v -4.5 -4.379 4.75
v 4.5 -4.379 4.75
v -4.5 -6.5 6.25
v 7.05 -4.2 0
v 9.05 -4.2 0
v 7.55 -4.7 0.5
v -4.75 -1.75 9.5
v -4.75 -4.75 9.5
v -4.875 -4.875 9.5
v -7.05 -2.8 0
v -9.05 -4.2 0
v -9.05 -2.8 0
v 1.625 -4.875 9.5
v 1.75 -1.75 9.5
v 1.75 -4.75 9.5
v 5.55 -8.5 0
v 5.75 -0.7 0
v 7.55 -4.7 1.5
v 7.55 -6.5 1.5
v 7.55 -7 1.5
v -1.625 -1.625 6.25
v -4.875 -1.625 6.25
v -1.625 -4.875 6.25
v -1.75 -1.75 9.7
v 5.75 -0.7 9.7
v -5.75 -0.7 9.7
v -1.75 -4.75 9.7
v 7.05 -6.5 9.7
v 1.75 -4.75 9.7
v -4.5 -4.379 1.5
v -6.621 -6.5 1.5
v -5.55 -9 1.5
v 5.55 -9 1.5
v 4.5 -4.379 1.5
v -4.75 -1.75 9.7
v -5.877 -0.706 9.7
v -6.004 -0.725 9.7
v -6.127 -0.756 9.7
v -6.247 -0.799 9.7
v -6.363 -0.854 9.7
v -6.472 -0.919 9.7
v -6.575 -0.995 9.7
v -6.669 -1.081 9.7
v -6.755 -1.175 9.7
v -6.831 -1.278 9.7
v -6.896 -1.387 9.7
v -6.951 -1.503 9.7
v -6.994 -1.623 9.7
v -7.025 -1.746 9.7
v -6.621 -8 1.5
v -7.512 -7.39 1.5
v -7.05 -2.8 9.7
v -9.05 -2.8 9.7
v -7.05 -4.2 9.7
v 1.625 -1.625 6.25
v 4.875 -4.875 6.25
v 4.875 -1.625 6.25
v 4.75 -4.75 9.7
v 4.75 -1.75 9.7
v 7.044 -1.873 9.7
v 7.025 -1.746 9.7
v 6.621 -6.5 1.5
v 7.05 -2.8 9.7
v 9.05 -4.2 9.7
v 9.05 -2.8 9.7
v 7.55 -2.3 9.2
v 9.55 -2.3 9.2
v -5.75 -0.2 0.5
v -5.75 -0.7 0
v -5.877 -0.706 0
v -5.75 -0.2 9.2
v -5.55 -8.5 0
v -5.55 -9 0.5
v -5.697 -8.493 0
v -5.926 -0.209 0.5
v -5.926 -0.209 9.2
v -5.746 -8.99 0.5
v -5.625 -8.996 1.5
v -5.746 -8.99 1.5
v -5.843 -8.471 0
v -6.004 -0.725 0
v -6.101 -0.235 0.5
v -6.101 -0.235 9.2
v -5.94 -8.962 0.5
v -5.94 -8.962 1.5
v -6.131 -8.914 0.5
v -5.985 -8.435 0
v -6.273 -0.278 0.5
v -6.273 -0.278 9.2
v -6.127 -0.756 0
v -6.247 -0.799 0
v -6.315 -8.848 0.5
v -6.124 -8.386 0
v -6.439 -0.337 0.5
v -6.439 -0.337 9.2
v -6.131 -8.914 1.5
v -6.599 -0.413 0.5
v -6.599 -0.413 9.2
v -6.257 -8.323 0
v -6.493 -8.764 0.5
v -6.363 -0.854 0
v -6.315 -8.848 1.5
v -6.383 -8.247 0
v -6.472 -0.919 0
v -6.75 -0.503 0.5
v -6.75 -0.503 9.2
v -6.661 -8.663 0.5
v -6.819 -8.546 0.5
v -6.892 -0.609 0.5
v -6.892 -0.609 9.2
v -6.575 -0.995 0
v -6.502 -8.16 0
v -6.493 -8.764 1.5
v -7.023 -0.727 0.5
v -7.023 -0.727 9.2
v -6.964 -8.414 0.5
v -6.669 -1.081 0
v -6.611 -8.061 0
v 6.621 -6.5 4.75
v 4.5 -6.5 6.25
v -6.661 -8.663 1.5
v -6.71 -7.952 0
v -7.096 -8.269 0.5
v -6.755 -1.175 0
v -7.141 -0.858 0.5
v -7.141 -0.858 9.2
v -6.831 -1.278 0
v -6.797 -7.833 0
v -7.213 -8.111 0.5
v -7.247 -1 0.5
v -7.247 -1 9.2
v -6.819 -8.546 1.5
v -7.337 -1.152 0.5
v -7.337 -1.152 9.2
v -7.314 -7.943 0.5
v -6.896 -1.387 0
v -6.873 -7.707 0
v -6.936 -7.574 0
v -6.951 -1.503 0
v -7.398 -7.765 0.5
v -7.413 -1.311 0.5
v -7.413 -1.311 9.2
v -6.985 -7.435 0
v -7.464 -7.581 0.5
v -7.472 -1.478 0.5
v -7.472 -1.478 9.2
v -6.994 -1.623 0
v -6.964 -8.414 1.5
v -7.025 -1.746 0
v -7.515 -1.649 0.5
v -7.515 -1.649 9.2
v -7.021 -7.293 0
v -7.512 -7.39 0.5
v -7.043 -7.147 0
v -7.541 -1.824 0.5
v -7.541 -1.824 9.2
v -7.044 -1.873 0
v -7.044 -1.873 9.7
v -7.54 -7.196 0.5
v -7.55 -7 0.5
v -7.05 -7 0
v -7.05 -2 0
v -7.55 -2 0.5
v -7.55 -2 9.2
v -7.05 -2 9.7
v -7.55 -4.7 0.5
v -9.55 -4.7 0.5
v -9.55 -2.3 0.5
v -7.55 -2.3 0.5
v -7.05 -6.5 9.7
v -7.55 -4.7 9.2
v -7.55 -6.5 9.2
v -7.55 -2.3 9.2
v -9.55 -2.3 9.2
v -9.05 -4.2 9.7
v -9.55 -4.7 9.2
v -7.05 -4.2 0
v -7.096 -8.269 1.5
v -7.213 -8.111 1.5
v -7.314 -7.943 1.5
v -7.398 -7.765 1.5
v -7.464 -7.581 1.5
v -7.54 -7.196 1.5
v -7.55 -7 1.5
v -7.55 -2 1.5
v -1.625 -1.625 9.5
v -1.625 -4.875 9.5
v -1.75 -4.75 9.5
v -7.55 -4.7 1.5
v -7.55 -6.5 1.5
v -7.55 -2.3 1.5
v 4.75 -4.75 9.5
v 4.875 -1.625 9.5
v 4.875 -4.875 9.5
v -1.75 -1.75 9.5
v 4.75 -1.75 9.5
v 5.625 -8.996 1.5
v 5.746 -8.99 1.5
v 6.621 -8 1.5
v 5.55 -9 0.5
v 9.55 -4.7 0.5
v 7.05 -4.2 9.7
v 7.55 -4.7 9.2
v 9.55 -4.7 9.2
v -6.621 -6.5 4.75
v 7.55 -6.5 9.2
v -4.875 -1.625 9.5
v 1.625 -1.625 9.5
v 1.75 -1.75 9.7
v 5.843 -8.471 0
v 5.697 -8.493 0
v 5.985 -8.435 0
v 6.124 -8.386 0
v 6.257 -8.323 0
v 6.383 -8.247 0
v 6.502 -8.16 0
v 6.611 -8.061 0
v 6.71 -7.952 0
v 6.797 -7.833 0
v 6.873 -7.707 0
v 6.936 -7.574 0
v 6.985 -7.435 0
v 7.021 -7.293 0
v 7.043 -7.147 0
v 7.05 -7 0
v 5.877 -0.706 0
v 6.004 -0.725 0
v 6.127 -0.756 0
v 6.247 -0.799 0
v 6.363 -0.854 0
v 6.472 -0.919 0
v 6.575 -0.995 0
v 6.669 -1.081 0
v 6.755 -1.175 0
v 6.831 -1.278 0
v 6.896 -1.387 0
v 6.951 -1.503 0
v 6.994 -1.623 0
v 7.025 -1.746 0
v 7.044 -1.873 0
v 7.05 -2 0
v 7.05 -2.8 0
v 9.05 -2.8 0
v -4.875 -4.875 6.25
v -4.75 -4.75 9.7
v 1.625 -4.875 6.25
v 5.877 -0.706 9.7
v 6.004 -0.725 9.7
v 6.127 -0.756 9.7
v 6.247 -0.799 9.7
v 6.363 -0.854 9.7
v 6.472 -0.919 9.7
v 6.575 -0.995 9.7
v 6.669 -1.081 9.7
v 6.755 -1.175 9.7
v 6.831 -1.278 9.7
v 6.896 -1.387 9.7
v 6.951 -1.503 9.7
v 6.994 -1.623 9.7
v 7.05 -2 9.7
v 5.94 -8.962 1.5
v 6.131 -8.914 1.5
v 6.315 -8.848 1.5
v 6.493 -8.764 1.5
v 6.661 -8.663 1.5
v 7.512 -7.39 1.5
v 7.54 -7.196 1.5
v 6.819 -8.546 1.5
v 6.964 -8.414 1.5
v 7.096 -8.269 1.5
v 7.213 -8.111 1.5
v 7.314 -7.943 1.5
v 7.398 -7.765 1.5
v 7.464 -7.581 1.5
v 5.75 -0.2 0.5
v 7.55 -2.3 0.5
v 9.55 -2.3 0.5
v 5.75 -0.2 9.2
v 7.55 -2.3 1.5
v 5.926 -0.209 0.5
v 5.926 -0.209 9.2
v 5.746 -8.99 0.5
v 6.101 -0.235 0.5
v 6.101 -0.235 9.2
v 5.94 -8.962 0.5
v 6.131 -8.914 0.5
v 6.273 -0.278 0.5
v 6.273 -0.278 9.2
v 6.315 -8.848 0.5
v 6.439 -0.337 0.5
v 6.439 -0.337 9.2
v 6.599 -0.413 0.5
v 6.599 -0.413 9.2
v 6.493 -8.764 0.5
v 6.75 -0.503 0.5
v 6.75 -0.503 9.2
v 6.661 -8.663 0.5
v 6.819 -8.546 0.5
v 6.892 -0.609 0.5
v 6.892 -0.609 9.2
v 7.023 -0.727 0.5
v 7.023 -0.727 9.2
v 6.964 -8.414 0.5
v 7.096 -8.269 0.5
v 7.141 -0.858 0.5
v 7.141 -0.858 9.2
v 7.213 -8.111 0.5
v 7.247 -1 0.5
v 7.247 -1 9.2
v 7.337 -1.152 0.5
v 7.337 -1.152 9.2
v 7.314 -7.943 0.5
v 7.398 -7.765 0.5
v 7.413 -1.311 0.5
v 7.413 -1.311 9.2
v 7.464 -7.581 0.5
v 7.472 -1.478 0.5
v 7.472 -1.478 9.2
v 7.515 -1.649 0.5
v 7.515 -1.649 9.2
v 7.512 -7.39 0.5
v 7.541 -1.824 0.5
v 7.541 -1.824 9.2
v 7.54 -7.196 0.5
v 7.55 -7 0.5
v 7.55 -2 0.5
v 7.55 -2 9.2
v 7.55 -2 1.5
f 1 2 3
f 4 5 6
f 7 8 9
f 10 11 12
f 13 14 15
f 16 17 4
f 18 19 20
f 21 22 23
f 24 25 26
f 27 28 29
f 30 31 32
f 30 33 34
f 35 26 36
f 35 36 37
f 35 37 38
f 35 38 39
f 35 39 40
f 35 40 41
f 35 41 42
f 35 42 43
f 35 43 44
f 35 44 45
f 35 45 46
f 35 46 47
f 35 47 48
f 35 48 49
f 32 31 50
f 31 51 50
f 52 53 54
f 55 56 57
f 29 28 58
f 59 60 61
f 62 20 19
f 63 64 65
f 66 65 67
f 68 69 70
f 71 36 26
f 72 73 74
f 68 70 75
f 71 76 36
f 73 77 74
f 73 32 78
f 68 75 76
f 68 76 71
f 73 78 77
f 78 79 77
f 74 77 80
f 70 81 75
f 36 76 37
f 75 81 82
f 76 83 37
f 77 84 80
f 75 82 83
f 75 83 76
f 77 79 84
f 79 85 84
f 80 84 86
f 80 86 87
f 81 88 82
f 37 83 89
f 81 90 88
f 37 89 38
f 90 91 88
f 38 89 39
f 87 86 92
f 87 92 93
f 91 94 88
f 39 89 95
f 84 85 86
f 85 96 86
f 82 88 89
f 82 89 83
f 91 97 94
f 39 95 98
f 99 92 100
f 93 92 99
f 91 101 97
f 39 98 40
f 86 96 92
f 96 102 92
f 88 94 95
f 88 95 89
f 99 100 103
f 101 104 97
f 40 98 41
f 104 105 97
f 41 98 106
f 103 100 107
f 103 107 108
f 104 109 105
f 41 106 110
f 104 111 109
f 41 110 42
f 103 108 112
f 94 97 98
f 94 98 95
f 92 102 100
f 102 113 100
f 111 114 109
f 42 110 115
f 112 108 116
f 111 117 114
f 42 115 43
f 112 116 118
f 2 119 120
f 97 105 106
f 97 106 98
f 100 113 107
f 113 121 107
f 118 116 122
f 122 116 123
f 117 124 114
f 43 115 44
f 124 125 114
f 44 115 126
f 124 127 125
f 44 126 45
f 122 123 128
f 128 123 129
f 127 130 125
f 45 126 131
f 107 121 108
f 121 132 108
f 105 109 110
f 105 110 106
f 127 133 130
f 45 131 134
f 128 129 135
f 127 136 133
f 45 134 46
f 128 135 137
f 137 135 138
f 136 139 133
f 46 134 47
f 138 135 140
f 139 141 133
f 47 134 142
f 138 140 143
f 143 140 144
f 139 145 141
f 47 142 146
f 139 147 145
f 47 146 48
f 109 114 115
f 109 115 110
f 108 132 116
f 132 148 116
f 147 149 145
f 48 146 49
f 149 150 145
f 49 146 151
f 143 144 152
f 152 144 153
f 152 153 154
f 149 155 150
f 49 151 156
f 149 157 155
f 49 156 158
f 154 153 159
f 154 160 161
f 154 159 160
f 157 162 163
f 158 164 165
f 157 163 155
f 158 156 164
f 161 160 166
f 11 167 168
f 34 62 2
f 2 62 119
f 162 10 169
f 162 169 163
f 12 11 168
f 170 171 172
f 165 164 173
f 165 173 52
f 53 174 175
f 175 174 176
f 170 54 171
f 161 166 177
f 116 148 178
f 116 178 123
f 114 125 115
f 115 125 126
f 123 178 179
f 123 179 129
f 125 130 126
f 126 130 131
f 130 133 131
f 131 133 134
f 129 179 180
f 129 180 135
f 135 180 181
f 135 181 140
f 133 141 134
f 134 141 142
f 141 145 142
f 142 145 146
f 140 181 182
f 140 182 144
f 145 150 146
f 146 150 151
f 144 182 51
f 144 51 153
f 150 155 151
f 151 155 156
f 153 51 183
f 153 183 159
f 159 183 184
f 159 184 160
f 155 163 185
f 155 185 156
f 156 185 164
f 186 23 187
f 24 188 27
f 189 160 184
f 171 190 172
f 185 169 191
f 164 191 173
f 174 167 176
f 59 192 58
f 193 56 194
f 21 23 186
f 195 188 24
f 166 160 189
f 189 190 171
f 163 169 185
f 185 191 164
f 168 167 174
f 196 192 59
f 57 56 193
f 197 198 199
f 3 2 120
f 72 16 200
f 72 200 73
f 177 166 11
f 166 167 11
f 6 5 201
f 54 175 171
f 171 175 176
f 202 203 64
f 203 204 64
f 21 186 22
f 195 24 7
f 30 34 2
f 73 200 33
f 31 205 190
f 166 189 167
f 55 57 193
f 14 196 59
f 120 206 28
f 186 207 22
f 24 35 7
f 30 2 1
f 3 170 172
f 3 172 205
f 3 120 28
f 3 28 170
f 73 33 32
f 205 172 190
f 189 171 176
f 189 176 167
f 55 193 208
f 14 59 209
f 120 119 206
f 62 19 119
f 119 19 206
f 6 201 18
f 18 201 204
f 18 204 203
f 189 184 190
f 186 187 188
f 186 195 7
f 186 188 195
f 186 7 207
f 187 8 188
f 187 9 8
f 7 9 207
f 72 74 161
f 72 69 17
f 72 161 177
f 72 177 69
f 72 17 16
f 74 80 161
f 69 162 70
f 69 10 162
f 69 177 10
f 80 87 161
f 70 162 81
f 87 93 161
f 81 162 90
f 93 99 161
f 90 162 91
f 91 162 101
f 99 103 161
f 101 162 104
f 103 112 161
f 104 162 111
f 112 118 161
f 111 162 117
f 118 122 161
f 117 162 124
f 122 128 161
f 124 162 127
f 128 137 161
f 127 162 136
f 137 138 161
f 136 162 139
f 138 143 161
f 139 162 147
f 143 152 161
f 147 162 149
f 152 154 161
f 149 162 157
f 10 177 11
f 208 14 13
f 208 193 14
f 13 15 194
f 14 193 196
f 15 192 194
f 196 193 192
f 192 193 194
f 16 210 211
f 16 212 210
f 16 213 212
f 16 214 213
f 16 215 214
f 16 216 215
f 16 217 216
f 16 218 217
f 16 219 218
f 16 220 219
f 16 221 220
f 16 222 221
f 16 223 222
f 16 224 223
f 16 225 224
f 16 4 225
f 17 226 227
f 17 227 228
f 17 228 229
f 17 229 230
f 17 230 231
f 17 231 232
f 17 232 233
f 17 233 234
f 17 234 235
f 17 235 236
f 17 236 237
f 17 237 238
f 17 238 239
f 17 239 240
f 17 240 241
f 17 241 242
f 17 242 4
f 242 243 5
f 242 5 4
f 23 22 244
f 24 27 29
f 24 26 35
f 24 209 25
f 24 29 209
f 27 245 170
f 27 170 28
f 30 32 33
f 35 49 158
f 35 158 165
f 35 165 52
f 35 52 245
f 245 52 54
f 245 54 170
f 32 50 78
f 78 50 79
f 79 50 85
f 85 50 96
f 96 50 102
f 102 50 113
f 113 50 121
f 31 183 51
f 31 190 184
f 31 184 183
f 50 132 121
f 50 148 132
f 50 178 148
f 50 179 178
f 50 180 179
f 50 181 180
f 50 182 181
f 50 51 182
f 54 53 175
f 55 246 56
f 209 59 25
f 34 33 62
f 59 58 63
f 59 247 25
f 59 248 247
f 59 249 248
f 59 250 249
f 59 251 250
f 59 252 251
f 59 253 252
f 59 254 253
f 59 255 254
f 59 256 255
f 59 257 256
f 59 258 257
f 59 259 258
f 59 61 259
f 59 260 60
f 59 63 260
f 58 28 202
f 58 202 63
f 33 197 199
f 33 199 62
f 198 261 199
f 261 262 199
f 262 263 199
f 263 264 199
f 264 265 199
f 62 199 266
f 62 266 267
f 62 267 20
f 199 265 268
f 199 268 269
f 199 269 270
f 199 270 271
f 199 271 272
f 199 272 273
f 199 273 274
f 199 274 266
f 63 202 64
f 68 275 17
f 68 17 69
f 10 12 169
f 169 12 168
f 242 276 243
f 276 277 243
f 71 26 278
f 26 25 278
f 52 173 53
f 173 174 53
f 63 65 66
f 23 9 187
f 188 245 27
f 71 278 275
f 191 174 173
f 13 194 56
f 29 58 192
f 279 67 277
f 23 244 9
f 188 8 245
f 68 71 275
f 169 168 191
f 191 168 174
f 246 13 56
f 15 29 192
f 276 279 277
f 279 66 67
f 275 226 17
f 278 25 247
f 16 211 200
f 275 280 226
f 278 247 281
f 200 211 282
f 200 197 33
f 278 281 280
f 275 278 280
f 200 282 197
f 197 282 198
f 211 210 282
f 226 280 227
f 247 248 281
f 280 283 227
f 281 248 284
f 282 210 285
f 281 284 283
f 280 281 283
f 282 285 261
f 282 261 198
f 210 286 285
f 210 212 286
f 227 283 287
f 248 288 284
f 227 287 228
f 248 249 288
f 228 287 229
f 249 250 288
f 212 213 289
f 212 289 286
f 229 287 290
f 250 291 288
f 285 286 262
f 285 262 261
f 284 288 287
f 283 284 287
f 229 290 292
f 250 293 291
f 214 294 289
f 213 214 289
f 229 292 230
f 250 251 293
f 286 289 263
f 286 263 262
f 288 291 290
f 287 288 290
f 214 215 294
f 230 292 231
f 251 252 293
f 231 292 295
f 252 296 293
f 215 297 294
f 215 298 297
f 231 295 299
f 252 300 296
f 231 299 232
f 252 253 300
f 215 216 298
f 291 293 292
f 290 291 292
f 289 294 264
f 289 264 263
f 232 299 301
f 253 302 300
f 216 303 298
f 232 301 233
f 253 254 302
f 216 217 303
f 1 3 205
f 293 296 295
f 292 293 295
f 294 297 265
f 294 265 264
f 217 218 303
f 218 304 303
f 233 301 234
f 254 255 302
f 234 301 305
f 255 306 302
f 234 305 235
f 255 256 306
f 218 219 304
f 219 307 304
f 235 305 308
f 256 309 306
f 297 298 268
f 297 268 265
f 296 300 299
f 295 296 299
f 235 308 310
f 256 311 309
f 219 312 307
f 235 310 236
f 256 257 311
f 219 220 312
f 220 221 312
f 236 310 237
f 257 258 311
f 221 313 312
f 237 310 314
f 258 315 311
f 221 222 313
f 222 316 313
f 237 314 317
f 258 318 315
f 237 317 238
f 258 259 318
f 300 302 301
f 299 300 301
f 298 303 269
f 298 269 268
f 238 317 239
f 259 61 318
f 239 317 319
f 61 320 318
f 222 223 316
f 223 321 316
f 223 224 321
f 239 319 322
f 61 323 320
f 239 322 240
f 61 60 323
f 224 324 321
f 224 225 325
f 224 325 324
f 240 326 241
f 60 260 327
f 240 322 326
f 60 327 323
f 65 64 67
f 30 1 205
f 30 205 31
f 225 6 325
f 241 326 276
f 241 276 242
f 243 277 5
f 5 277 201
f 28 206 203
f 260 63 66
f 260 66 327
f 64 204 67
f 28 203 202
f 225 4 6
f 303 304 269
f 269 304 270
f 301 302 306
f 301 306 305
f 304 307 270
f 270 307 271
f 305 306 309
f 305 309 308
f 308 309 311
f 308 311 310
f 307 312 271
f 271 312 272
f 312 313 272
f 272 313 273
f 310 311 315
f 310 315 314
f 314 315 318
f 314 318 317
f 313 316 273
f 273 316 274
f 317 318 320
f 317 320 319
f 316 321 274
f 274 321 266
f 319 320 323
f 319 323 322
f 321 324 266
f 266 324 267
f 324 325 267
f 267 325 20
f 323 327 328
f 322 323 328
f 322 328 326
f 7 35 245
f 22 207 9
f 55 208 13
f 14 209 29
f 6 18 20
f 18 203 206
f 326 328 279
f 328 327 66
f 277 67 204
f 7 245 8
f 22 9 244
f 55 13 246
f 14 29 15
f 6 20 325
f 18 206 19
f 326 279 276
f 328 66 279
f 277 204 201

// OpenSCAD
// file: ../../lib/utils.scad
include <../variables.scad>

use <./Round-Anything/polyround.scad>


module mirrorCopy(v, mirrorOffset=0) {
  children();

  translate([v[0]*mirrorOffset, v[1]*mirrorOffset, v[2]*mirrorOffset])
  mirror(v)
  translate([-v[0]*mirrorOffset, -v[1]*mirrorOffset, -v[2]*mirrorOffset])
  children();
}

module mirrorRotate(r) {
  children();

  rotate(r)
  children();
}


module draft(vertical, offs) {
  hull() {
    translate([0, 0, vertical])linear_extrude(0.01)children();
    linear_extrude(0.01)offset(offs)children();
  }
}

module roundedCube(dimen, radii, center=false) {
  translate(center ? [-dimen.x/2, -dimen.y/2, -dimen.z/2] : [0, 0, 0])
  linear_extrude(dimen.z)
  polygon(polyRound([
    [0, 0, is_num(radii) ? radii : radii[0]],
    [dimen.x, 0, is_num(radii) ? radii : radii[1]],
    [dimen.x, dimen.y, is_num(radii) ? radii : radii[2]],
    [0, dimen.y, is_num(radii) ? radii : radii[3]],
  ], fn=$pfn));
}

module HeatsetInsertHole(bottom=false) {
  translate([0, 0, bottom ? 0 : -m3_insert_hole_depth]) {
    rotate_extrude()
    polygon([
      [0, 0],
      [0, m3_insert_hole_depth],
      [m3_insert_hole_diameter/2, m3_insert_hole_depth],
      [m3_insert_hole_diameter/2, m3_insert_cavity_depth+(m3_insert_cavity_diameter-m3_insert_hole_diameter)/2],
      [m3_insert_cavity_diameter/2, m3_insert_cavity_depth],
      [m3_insert_cavity_diameter/2, 0],
    ]);
  }
}

function roundedRectangle(width, height, radius) =
  polyRound([
    [width/2, height/2, radius],
    [-width/2, height/2, radius],
    [-width/2, -height/2, radius],
    [width/2, -height/2, radius],
  ], fn=$pfn);


module ChamferPyramid(l)       polyhedron(
  //        P0        P1        P2         P3       P4
  points= [[l,l,0], [l,-l,0], [-l,-l,0], [-l,l,0], [0,0,l]],
  faces=  [[0,1,4], [1,2,4],  [2,3,4],    [3,0,4], [1,0,3],  [2,1,3] ]
 );

/**
 * Produces a rail with a smaller plate to attach to, and a bigger base that
 * holds it in the opposite rail. The rail is centered on one of the long edges
 * of the plate that can be built upon, ranging wide in both x directions and
 * short into the positive y direction.
 */
module MountRail(clearance=MountRail_clearance) {
  translate([0, 0, -MountRail_total_height ])
  rotate([90, 0, 180])
  mirrorCopy([1, 0, 0])
  difference() {
    linear_extrude(MountRail_width,convexity=2)
    polygon([
      [0, 0],
      [MountRail_base_width/2-clearance, 0],
      [MountRail_base_width/2-clearance, MountRail_base_height-clearance],
      [MountRail_plate_width/2-clearance, MountRail_base_height+MountRail_chamfer_height-clearance],
      [MountRail_plate_width/2-clearance, MountRail_total_height],
      [0, MountRail_base_height+MountRail_chamfer_height+MountRail_plate_distance]
    ]);

    translate([MountRail_base_width/2, 0, MountRail_width/2])
    rotate([0, -90, 0])
    cylinder(d=m3_screw_diameter_loose, h=MountRail_pin_length);
  }
}

module ScrewHole(
  depth, // total depth, including head
  diameter,
  head_depth=0,
  head_diameter=0,
  elongation=0,
) {
  union () {
    // Screw head hole or slot
    if (head_depth > 0) {
      head_diameter_actual = head_diameter ? head_diameter  : diameter * 2;

      hull() {
        for(i=elongation ? [-1,1] : 0)
        translate([i*elongation/2, 0, -head_depth])
        cylinder(d=head_diameter_actual, h=head_depth);
      }
    }

    // Screw hole or slot
    hull() {
      for(i=elongation ? [-1,1] : 0)
      translate([i*elongation/2, 0, -depth])
      cylinder(d=diameter, h=depth);
    }
  }
}

module ScrewHoleM3(depth, head_depth=0, elongation=0) {
  ScrewHole(
    depth,
    diameter=m3_screw_diameter_loose,
    head_depth=head_depth,
    head_diameter=m3_screw_head_diameter,
    elongation=elongation
  );
}

module load_svg(filename) {
  // some SVG produce strange geometry. This is a bit slower but fixes the issues.
  if (fix_svg) {
    offset(delta = epsilon) import(filename);
  }
  else {
    import(filename);
  }
}
// main file
include <../../variables.scad>
include <../../lib/utils.scad>

$fn = 64;
depth = UsbCover_depth+UsbCover_foot_length;


module 2DBase(inset=0, clearance=0) {
    // inset is required for chamfer
    UsbCover_r1=UsbCover_r1-inset;
    UsbCover_r2=UsbCover_r2-inset;
    rMax=max(UsbCover_r1,UsbCover_r2);

    // one side of the rounded rectangle
    translate([clearance, 0, 0])
    difference(){
      offset(r=UsbCover_r1) square([depth-UsbCover_r1*2-inset*2,UsbCover_width-UsbCover_r1*2-inset*2-2*clearance],center=true);
      translate([depth/4 + rMax/2,0])square([depth/2+rMax,UsbCover_width+rMax-clearance], center=true);
    }
    // other side - slightly different radius
    difference(){
      offset(r=UsbCover_r2) square([depth-UsbCover_r2*2-inset*2,UsbCover_width-UsbCover_r2*2-inset*2-2*clearance],center=true);
      translate([-(depth/4 + rMax/2),0])square([depth/2+rMax,UsbCover_width+rMax-clearance], center=true);
    }
}

module 2DRail(inset=0, clearance=0)
{
    // only the side rail
    translate([-depth/2+UsbCover_wing_width/2+UsbCover_wing_offset,0,0])square([UsbCover_wing_width-inset*2-clearance,UsbCover_width+2*(UsbCover_wing_length-clearance)-inset*2],center=true);
}

module 2DTop(inset=0, clearance=0) {
    // the top shape is the bottom shape with a cutoff at the edge
    difference() {
        2DBase(inset=inset, clearance=clearance);
        translate([7.4,0])square([depth+UsbCover_r1,UsbCover_width+UsbCover_r1],center=true);
    }
}


module UsbCoverMainBody(chamfer=0.5, clearance=0, counter_magnets=false) {
    // translation into world coordinates

    if (clearance > 0) {
        // Positive clearance is used in the cutout of the MainCase.
        
        // clearance by minkowski with cylinder
        minkowski(){
            UsbCoverMainBody(chamfer=0,clearance=0);
            cylinder(r=clearance,h=clearance);
        }
        if (counter_magnets) {
            CounterMagnetHoles(clearance=clearance);
        }

    } else {
        // Negative clearance is used in the correction of the actual UsbCover
        // part for printing smaller items to fit existing cases with not
        // enough actual clearance.

        rotate([0,0,90])translate([depth/2,0,0]) {
            //rail with chamfer top and bottom
            hull() {
                linear_extrude(0.01){2DRail(inset=chamfer,clearance=-clearance);}
                translate([0,0,chamfer])linear_extrude(epsilon){2DRail(inset=0,clearance=-clearance);}
                translate([0,0,UsbCover_height-chamfer-epsilon])linear_extrude(epsilon){2DRail(inset=0,clearance=-clearance);}
                translate([0,0,UsbCover_height-epsilon])linear_extrude(epsilon){2DRail(inset=chamfer,clearance=-clearance);}
            }
            // bottom with chamfer up to grip
            hull()
            {
                linear_extrude(0.01){2DBase(inset=chamfer,clearance=-clearance);}
                translate([0,0,chamfer])linear_extrude(epsilon){2DBase(inset=0,clearance=-clearance);}
                translate([0,0,UsbCover_foot_height-epsilon])linear_extrude(epsilon){2DBase(inset=0,clearance=-clearance);}
            }
            // top with chamfer
            hull(){
                translate([0,0,UsbCover_foot_height])linear_extrude(epsilon){2DTop(inset=0,clearance=-clearance);}
                translate([0,0,UsbCover_height-chamfer-epsilon])linear_extrude(epsilon){2DTop(inset=0,clearance=-clearance);}
                translate([0,0,UsbCover_height-epsilon])linear_extrude(epsilon){2DTop(inset=chamfer,clearance=-clearance);}
            }
            //top chamfers are moved down by slice thickness
        }
    }
}

module MagnetHole(inverse=false) {
    // a cube with clearance and a smaller section on top that grips the magnet.
    union() {
          updown = inverse ? UsbCover_magnet_clearance : -UsbCover_magnet_clearance;
          translate([-UsbCover_magnet_clearance/2,-UsbCover_magnet_clearance/2,updown])
             cube(UsbCover_magnet_size+UsbCover_magnet_clearance,center=false);
          translate([0,0,inverse?-epsilon:epsilon])
             cube([UsbCover_magnet_size,UsbCover_magnet_size,UsbCover_magnet_depth+epsilon]);
      }
  }

module MagnetHoles() {
    // translation into world coordinates
    rotate([0,0,90])translate([depth/2,0,0])
    for (i=[-1,1])
        translate([-UsbCover_magnet_size/2-depth/2+UsbCover_depth/2,-UsbCover_magnet_size/2-i*UsbCover_magnet_spacing/2,UsbCover_height-UsbCover_magnet_depth]) MagnetHole();
}

module CounterMagnetHoles(clearance=0) {
  // these are used to punch the magnet holes into the MainCase, together with a bridging helper ridge
  // translation into world coordinates
  rotate([0,0,90])translate([depth/2,0,0]){
    for (i=[-1,1])
      translate([-UsbCover_magnet_size/2-depth/2+UsbCover_depth/2,-UsbCover_magnet_size/2-i*UsbCover_magnet_spacing/2,UsbCover_height+clearance]) MagnetHole(inverse=true);
    if (enable_easy_print) {
      translate([-UsbCover_magnet_size/2-depth/2+UsbCover_depth/2,-UsbCover_width/2-clearance,UsbCover_height+clearance])
        cube([UsbCover_magnet_size,UsbCover_width+2*clearance,.25]);
    }
  }
}

module 3DGripMould(){
    // translation into world coordinates
    rotate([0,0,90])translate([depth/2,0,0])

    // a lengthy "cube" minkowski-summed with a pyramid
    translate([depth/2-UsbCover_foot_length,-UsbCover_indent_width/2+UsbCover_indent_depth,UsbCover_foot_height])minkowski(){
       //pyramid
       rotate([0,0,45])ChamferPyramid(UsbCover_indent_depth);
       //cube
       cube([UsbCover_indent_depth, UsbCover_indent_width-2*UsbCover_indent_depth, UsbCover_indent_height-UsbCover_indent_depth/2]);
    }
}

module UsbCover(chamfer=0.5){
    difference(){
        UsbCoverMainBody(chamfer=chamfer, clearance=-UsbCover_clearance_correction);
        3DGripMould();
        MagnetHoles();
    }
}

rotate([0, 0, 180])
UsbCover();
